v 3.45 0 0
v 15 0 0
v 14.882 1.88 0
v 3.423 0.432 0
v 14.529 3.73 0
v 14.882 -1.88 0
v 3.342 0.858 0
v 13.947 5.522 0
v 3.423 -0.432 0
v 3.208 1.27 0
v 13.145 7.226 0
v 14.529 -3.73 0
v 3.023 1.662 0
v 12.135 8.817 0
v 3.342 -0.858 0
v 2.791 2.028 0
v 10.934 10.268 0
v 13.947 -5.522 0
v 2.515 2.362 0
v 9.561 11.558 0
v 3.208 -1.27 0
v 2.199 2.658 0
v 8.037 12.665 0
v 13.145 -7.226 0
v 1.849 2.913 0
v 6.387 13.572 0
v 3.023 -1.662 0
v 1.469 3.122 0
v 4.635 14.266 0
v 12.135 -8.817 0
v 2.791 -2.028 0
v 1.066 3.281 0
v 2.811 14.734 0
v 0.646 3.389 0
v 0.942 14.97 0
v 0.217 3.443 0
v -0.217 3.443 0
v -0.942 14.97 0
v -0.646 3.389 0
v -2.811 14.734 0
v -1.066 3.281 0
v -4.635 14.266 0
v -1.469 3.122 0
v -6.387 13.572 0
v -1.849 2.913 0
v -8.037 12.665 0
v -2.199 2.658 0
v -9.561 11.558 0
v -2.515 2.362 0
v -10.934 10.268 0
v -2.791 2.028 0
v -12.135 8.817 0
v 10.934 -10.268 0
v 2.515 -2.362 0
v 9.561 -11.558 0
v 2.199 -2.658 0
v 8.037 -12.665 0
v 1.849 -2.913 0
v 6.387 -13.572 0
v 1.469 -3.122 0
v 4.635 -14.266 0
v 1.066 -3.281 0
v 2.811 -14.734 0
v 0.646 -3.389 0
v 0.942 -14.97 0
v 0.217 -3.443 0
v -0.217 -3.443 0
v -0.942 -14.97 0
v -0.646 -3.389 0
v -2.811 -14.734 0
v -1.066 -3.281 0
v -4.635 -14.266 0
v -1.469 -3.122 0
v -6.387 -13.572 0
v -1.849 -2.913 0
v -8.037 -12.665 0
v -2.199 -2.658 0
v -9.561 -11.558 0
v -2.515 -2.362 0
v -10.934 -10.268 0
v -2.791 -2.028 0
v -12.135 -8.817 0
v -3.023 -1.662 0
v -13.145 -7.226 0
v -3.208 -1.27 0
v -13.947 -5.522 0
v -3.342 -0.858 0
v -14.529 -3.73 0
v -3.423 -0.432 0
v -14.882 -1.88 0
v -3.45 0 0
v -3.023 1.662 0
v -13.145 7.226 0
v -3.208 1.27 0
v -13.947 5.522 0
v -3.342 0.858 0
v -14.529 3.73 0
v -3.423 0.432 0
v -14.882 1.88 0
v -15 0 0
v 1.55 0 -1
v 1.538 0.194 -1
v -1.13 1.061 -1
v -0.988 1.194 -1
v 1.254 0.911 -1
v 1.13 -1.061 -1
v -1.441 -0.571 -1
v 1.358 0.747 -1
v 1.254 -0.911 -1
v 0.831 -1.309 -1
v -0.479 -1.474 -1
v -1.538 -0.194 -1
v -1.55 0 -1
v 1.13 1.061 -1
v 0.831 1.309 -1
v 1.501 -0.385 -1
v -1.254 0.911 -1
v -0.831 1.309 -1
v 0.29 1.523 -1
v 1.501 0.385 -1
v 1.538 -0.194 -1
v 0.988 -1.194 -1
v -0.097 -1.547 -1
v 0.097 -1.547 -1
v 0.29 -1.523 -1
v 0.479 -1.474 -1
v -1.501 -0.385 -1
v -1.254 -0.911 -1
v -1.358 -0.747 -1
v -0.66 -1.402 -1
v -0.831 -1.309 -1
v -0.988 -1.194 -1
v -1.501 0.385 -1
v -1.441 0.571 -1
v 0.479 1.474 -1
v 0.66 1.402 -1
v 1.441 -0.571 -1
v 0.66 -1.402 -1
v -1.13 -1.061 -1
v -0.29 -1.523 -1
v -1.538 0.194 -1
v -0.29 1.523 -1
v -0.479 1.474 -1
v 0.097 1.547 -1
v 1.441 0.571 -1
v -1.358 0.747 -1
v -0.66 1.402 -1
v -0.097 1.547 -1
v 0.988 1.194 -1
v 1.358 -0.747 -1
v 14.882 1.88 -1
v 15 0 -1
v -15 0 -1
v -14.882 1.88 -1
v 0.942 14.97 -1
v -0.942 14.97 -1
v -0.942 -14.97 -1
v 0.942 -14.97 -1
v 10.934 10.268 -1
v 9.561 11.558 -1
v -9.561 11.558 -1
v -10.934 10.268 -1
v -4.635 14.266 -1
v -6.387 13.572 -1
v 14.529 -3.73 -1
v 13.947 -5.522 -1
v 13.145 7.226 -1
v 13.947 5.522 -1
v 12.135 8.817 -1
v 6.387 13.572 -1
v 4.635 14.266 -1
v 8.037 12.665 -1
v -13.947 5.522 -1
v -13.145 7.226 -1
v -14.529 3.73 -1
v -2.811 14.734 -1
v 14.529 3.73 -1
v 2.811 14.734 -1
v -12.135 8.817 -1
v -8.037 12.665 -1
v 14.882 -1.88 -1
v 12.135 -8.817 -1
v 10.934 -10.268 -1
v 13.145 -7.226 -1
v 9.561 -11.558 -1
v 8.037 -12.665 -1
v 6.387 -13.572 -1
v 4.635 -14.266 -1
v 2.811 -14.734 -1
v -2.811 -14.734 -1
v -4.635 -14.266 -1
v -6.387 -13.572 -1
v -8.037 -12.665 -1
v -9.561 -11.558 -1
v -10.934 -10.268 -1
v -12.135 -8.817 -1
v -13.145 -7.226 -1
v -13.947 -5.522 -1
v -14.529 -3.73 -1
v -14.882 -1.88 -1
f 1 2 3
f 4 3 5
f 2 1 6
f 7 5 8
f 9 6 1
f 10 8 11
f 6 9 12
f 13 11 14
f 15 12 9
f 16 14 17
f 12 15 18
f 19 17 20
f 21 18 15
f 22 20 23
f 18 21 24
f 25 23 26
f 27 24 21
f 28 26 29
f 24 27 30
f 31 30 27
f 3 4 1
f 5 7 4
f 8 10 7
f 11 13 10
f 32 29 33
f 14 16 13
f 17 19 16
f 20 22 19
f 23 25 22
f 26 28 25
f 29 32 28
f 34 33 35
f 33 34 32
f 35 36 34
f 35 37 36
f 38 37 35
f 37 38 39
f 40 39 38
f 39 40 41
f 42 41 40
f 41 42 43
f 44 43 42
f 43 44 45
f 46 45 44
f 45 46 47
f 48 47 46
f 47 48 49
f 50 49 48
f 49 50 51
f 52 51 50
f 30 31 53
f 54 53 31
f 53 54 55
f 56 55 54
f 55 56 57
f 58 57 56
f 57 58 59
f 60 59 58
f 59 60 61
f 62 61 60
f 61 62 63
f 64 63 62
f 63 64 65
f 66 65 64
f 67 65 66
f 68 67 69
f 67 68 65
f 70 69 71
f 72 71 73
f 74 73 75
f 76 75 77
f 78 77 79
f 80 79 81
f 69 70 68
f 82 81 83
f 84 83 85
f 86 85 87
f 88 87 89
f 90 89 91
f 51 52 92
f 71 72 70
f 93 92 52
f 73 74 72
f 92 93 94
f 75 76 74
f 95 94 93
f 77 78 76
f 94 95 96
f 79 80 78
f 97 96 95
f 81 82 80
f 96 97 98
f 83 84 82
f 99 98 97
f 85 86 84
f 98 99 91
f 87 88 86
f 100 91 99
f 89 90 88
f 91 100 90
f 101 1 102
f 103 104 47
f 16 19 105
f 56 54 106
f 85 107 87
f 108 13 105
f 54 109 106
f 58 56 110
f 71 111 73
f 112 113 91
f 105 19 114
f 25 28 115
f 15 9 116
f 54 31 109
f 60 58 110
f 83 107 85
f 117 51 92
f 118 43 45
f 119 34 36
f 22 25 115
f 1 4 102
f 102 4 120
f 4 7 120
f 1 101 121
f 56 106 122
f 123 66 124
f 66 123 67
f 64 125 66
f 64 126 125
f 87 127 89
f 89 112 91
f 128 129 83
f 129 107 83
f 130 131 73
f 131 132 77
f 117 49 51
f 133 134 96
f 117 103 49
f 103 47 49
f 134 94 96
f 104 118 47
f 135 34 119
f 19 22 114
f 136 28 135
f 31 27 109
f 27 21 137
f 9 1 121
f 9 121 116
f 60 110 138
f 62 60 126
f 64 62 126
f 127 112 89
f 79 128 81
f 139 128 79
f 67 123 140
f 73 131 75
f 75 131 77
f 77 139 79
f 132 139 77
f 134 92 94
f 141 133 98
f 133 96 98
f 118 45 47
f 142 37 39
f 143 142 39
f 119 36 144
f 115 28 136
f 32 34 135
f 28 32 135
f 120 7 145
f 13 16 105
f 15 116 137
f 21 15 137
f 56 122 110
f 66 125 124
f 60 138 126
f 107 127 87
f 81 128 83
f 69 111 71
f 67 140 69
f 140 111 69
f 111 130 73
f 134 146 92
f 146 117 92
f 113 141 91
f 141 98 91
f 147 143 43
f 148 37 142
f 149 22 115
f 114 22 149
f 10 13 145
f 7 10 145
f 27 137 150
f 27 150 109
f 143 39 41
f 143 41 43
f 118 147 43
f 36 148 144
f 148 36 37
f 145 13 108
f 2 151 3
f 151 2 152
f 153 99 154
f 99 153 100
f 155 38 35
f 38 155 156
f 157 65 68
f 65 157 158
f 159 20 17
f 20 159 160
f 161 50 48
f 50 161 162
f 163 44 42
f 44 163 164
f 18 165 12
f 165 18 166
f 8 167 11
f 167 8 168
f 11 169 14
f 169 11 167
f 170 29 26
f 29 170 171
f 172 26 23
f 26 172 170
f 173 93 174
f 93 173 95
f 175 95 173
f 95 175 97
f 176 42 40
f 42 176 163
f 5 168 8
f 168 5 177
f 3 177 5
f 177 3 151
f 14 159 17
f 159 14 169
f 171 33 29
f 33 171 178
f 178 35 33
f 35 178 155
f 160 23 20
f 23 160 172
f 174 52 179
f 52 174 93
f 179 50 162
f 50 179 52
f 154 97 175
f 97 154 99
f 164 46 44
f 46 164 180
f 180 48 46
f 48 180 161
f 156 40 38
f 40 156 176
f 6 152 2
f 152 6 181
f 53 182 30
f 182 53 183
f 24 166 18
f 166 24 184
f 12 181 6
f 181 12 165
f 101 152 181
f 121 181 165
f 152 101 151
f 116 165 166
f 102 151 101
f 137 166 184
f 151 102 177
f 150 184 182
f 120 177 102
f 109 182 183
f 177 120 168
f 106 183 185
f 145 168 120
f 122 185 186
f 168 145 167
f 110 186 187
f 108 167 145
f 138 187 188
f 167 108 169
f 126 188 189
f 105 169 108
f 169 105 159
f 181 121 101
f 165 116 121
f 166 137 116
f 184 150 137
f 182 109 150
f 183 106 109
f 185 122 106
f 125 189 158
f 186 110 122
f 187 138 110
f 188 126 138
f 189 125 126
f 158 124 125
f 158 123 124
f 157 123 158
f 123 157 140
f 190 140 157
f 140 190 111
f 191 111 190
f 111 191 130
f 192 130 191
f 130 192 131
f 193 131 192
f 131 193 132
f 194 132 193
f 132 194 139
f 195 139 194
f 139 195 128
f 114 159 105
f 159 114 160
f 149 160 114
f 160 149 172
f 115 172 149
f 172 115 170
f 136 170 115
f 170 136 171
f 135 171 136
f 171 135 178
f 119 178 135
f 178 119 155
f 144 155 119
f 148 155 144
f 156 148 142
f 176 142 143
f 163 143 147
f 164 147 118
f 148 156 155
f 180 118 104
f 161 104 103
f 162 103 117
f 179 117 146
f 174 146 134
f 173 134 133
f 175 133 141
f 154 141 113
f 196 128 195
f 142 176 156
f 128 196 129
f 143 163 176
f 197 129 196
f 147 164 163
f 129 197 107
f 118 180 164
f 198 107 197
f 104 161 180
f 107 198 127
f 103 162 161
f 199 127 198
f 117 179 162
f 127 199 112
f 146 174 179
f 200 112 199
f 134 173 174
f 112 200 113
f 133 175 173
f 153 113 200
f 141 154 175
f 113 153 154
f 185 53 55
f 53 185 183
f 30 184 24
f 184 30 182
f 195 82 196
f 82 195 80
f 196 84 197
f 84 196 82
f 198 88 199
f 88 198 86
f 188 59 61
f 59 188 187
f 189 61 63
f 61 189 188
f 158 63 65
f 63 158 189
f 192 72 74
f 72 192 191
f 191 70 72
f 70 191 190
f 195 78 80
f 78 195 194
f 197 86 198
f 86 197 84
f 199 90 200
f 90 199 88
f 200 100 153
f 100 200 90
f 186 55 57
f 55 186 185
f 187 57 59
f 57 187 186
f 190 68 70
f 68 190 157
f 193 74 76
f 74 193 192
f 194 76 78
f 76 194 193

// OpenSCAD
$fn = 50;


difference() {
	union() {
		translate(v = [0, 0, -1.0000000000]) {
			cylinder(h = 1.0000000000, r = 15.0000000000);
		}
	}
	union() {
		translate(v = [0, 0, 0]) {
			rotate(a = [0, 0, 0]) {
				difference() {
					union() {
						translate(v = [0, 0, -4.0000000000]) {
							cylinder(h = 4.0000000000, r = 1.2500000000);
						}
						translate(v = [0, 0, -1.0000000000]) {
							cylinder(h = 1.0000000000, r1 = 1.5500000000, r2 = 3.4500000000);
						}
						translate(v = [0, 0, -4.0000000000]) {
							cylinder(h = 4.0000000000, r = 1.5500000000);
						}
						translate(v = [0, 0, -4.0000000000]) {
							cylinder(h = 4.0000000000, r = 1.2500000000);
						}
					}
					union();
				}
			}
		}
	}
}
